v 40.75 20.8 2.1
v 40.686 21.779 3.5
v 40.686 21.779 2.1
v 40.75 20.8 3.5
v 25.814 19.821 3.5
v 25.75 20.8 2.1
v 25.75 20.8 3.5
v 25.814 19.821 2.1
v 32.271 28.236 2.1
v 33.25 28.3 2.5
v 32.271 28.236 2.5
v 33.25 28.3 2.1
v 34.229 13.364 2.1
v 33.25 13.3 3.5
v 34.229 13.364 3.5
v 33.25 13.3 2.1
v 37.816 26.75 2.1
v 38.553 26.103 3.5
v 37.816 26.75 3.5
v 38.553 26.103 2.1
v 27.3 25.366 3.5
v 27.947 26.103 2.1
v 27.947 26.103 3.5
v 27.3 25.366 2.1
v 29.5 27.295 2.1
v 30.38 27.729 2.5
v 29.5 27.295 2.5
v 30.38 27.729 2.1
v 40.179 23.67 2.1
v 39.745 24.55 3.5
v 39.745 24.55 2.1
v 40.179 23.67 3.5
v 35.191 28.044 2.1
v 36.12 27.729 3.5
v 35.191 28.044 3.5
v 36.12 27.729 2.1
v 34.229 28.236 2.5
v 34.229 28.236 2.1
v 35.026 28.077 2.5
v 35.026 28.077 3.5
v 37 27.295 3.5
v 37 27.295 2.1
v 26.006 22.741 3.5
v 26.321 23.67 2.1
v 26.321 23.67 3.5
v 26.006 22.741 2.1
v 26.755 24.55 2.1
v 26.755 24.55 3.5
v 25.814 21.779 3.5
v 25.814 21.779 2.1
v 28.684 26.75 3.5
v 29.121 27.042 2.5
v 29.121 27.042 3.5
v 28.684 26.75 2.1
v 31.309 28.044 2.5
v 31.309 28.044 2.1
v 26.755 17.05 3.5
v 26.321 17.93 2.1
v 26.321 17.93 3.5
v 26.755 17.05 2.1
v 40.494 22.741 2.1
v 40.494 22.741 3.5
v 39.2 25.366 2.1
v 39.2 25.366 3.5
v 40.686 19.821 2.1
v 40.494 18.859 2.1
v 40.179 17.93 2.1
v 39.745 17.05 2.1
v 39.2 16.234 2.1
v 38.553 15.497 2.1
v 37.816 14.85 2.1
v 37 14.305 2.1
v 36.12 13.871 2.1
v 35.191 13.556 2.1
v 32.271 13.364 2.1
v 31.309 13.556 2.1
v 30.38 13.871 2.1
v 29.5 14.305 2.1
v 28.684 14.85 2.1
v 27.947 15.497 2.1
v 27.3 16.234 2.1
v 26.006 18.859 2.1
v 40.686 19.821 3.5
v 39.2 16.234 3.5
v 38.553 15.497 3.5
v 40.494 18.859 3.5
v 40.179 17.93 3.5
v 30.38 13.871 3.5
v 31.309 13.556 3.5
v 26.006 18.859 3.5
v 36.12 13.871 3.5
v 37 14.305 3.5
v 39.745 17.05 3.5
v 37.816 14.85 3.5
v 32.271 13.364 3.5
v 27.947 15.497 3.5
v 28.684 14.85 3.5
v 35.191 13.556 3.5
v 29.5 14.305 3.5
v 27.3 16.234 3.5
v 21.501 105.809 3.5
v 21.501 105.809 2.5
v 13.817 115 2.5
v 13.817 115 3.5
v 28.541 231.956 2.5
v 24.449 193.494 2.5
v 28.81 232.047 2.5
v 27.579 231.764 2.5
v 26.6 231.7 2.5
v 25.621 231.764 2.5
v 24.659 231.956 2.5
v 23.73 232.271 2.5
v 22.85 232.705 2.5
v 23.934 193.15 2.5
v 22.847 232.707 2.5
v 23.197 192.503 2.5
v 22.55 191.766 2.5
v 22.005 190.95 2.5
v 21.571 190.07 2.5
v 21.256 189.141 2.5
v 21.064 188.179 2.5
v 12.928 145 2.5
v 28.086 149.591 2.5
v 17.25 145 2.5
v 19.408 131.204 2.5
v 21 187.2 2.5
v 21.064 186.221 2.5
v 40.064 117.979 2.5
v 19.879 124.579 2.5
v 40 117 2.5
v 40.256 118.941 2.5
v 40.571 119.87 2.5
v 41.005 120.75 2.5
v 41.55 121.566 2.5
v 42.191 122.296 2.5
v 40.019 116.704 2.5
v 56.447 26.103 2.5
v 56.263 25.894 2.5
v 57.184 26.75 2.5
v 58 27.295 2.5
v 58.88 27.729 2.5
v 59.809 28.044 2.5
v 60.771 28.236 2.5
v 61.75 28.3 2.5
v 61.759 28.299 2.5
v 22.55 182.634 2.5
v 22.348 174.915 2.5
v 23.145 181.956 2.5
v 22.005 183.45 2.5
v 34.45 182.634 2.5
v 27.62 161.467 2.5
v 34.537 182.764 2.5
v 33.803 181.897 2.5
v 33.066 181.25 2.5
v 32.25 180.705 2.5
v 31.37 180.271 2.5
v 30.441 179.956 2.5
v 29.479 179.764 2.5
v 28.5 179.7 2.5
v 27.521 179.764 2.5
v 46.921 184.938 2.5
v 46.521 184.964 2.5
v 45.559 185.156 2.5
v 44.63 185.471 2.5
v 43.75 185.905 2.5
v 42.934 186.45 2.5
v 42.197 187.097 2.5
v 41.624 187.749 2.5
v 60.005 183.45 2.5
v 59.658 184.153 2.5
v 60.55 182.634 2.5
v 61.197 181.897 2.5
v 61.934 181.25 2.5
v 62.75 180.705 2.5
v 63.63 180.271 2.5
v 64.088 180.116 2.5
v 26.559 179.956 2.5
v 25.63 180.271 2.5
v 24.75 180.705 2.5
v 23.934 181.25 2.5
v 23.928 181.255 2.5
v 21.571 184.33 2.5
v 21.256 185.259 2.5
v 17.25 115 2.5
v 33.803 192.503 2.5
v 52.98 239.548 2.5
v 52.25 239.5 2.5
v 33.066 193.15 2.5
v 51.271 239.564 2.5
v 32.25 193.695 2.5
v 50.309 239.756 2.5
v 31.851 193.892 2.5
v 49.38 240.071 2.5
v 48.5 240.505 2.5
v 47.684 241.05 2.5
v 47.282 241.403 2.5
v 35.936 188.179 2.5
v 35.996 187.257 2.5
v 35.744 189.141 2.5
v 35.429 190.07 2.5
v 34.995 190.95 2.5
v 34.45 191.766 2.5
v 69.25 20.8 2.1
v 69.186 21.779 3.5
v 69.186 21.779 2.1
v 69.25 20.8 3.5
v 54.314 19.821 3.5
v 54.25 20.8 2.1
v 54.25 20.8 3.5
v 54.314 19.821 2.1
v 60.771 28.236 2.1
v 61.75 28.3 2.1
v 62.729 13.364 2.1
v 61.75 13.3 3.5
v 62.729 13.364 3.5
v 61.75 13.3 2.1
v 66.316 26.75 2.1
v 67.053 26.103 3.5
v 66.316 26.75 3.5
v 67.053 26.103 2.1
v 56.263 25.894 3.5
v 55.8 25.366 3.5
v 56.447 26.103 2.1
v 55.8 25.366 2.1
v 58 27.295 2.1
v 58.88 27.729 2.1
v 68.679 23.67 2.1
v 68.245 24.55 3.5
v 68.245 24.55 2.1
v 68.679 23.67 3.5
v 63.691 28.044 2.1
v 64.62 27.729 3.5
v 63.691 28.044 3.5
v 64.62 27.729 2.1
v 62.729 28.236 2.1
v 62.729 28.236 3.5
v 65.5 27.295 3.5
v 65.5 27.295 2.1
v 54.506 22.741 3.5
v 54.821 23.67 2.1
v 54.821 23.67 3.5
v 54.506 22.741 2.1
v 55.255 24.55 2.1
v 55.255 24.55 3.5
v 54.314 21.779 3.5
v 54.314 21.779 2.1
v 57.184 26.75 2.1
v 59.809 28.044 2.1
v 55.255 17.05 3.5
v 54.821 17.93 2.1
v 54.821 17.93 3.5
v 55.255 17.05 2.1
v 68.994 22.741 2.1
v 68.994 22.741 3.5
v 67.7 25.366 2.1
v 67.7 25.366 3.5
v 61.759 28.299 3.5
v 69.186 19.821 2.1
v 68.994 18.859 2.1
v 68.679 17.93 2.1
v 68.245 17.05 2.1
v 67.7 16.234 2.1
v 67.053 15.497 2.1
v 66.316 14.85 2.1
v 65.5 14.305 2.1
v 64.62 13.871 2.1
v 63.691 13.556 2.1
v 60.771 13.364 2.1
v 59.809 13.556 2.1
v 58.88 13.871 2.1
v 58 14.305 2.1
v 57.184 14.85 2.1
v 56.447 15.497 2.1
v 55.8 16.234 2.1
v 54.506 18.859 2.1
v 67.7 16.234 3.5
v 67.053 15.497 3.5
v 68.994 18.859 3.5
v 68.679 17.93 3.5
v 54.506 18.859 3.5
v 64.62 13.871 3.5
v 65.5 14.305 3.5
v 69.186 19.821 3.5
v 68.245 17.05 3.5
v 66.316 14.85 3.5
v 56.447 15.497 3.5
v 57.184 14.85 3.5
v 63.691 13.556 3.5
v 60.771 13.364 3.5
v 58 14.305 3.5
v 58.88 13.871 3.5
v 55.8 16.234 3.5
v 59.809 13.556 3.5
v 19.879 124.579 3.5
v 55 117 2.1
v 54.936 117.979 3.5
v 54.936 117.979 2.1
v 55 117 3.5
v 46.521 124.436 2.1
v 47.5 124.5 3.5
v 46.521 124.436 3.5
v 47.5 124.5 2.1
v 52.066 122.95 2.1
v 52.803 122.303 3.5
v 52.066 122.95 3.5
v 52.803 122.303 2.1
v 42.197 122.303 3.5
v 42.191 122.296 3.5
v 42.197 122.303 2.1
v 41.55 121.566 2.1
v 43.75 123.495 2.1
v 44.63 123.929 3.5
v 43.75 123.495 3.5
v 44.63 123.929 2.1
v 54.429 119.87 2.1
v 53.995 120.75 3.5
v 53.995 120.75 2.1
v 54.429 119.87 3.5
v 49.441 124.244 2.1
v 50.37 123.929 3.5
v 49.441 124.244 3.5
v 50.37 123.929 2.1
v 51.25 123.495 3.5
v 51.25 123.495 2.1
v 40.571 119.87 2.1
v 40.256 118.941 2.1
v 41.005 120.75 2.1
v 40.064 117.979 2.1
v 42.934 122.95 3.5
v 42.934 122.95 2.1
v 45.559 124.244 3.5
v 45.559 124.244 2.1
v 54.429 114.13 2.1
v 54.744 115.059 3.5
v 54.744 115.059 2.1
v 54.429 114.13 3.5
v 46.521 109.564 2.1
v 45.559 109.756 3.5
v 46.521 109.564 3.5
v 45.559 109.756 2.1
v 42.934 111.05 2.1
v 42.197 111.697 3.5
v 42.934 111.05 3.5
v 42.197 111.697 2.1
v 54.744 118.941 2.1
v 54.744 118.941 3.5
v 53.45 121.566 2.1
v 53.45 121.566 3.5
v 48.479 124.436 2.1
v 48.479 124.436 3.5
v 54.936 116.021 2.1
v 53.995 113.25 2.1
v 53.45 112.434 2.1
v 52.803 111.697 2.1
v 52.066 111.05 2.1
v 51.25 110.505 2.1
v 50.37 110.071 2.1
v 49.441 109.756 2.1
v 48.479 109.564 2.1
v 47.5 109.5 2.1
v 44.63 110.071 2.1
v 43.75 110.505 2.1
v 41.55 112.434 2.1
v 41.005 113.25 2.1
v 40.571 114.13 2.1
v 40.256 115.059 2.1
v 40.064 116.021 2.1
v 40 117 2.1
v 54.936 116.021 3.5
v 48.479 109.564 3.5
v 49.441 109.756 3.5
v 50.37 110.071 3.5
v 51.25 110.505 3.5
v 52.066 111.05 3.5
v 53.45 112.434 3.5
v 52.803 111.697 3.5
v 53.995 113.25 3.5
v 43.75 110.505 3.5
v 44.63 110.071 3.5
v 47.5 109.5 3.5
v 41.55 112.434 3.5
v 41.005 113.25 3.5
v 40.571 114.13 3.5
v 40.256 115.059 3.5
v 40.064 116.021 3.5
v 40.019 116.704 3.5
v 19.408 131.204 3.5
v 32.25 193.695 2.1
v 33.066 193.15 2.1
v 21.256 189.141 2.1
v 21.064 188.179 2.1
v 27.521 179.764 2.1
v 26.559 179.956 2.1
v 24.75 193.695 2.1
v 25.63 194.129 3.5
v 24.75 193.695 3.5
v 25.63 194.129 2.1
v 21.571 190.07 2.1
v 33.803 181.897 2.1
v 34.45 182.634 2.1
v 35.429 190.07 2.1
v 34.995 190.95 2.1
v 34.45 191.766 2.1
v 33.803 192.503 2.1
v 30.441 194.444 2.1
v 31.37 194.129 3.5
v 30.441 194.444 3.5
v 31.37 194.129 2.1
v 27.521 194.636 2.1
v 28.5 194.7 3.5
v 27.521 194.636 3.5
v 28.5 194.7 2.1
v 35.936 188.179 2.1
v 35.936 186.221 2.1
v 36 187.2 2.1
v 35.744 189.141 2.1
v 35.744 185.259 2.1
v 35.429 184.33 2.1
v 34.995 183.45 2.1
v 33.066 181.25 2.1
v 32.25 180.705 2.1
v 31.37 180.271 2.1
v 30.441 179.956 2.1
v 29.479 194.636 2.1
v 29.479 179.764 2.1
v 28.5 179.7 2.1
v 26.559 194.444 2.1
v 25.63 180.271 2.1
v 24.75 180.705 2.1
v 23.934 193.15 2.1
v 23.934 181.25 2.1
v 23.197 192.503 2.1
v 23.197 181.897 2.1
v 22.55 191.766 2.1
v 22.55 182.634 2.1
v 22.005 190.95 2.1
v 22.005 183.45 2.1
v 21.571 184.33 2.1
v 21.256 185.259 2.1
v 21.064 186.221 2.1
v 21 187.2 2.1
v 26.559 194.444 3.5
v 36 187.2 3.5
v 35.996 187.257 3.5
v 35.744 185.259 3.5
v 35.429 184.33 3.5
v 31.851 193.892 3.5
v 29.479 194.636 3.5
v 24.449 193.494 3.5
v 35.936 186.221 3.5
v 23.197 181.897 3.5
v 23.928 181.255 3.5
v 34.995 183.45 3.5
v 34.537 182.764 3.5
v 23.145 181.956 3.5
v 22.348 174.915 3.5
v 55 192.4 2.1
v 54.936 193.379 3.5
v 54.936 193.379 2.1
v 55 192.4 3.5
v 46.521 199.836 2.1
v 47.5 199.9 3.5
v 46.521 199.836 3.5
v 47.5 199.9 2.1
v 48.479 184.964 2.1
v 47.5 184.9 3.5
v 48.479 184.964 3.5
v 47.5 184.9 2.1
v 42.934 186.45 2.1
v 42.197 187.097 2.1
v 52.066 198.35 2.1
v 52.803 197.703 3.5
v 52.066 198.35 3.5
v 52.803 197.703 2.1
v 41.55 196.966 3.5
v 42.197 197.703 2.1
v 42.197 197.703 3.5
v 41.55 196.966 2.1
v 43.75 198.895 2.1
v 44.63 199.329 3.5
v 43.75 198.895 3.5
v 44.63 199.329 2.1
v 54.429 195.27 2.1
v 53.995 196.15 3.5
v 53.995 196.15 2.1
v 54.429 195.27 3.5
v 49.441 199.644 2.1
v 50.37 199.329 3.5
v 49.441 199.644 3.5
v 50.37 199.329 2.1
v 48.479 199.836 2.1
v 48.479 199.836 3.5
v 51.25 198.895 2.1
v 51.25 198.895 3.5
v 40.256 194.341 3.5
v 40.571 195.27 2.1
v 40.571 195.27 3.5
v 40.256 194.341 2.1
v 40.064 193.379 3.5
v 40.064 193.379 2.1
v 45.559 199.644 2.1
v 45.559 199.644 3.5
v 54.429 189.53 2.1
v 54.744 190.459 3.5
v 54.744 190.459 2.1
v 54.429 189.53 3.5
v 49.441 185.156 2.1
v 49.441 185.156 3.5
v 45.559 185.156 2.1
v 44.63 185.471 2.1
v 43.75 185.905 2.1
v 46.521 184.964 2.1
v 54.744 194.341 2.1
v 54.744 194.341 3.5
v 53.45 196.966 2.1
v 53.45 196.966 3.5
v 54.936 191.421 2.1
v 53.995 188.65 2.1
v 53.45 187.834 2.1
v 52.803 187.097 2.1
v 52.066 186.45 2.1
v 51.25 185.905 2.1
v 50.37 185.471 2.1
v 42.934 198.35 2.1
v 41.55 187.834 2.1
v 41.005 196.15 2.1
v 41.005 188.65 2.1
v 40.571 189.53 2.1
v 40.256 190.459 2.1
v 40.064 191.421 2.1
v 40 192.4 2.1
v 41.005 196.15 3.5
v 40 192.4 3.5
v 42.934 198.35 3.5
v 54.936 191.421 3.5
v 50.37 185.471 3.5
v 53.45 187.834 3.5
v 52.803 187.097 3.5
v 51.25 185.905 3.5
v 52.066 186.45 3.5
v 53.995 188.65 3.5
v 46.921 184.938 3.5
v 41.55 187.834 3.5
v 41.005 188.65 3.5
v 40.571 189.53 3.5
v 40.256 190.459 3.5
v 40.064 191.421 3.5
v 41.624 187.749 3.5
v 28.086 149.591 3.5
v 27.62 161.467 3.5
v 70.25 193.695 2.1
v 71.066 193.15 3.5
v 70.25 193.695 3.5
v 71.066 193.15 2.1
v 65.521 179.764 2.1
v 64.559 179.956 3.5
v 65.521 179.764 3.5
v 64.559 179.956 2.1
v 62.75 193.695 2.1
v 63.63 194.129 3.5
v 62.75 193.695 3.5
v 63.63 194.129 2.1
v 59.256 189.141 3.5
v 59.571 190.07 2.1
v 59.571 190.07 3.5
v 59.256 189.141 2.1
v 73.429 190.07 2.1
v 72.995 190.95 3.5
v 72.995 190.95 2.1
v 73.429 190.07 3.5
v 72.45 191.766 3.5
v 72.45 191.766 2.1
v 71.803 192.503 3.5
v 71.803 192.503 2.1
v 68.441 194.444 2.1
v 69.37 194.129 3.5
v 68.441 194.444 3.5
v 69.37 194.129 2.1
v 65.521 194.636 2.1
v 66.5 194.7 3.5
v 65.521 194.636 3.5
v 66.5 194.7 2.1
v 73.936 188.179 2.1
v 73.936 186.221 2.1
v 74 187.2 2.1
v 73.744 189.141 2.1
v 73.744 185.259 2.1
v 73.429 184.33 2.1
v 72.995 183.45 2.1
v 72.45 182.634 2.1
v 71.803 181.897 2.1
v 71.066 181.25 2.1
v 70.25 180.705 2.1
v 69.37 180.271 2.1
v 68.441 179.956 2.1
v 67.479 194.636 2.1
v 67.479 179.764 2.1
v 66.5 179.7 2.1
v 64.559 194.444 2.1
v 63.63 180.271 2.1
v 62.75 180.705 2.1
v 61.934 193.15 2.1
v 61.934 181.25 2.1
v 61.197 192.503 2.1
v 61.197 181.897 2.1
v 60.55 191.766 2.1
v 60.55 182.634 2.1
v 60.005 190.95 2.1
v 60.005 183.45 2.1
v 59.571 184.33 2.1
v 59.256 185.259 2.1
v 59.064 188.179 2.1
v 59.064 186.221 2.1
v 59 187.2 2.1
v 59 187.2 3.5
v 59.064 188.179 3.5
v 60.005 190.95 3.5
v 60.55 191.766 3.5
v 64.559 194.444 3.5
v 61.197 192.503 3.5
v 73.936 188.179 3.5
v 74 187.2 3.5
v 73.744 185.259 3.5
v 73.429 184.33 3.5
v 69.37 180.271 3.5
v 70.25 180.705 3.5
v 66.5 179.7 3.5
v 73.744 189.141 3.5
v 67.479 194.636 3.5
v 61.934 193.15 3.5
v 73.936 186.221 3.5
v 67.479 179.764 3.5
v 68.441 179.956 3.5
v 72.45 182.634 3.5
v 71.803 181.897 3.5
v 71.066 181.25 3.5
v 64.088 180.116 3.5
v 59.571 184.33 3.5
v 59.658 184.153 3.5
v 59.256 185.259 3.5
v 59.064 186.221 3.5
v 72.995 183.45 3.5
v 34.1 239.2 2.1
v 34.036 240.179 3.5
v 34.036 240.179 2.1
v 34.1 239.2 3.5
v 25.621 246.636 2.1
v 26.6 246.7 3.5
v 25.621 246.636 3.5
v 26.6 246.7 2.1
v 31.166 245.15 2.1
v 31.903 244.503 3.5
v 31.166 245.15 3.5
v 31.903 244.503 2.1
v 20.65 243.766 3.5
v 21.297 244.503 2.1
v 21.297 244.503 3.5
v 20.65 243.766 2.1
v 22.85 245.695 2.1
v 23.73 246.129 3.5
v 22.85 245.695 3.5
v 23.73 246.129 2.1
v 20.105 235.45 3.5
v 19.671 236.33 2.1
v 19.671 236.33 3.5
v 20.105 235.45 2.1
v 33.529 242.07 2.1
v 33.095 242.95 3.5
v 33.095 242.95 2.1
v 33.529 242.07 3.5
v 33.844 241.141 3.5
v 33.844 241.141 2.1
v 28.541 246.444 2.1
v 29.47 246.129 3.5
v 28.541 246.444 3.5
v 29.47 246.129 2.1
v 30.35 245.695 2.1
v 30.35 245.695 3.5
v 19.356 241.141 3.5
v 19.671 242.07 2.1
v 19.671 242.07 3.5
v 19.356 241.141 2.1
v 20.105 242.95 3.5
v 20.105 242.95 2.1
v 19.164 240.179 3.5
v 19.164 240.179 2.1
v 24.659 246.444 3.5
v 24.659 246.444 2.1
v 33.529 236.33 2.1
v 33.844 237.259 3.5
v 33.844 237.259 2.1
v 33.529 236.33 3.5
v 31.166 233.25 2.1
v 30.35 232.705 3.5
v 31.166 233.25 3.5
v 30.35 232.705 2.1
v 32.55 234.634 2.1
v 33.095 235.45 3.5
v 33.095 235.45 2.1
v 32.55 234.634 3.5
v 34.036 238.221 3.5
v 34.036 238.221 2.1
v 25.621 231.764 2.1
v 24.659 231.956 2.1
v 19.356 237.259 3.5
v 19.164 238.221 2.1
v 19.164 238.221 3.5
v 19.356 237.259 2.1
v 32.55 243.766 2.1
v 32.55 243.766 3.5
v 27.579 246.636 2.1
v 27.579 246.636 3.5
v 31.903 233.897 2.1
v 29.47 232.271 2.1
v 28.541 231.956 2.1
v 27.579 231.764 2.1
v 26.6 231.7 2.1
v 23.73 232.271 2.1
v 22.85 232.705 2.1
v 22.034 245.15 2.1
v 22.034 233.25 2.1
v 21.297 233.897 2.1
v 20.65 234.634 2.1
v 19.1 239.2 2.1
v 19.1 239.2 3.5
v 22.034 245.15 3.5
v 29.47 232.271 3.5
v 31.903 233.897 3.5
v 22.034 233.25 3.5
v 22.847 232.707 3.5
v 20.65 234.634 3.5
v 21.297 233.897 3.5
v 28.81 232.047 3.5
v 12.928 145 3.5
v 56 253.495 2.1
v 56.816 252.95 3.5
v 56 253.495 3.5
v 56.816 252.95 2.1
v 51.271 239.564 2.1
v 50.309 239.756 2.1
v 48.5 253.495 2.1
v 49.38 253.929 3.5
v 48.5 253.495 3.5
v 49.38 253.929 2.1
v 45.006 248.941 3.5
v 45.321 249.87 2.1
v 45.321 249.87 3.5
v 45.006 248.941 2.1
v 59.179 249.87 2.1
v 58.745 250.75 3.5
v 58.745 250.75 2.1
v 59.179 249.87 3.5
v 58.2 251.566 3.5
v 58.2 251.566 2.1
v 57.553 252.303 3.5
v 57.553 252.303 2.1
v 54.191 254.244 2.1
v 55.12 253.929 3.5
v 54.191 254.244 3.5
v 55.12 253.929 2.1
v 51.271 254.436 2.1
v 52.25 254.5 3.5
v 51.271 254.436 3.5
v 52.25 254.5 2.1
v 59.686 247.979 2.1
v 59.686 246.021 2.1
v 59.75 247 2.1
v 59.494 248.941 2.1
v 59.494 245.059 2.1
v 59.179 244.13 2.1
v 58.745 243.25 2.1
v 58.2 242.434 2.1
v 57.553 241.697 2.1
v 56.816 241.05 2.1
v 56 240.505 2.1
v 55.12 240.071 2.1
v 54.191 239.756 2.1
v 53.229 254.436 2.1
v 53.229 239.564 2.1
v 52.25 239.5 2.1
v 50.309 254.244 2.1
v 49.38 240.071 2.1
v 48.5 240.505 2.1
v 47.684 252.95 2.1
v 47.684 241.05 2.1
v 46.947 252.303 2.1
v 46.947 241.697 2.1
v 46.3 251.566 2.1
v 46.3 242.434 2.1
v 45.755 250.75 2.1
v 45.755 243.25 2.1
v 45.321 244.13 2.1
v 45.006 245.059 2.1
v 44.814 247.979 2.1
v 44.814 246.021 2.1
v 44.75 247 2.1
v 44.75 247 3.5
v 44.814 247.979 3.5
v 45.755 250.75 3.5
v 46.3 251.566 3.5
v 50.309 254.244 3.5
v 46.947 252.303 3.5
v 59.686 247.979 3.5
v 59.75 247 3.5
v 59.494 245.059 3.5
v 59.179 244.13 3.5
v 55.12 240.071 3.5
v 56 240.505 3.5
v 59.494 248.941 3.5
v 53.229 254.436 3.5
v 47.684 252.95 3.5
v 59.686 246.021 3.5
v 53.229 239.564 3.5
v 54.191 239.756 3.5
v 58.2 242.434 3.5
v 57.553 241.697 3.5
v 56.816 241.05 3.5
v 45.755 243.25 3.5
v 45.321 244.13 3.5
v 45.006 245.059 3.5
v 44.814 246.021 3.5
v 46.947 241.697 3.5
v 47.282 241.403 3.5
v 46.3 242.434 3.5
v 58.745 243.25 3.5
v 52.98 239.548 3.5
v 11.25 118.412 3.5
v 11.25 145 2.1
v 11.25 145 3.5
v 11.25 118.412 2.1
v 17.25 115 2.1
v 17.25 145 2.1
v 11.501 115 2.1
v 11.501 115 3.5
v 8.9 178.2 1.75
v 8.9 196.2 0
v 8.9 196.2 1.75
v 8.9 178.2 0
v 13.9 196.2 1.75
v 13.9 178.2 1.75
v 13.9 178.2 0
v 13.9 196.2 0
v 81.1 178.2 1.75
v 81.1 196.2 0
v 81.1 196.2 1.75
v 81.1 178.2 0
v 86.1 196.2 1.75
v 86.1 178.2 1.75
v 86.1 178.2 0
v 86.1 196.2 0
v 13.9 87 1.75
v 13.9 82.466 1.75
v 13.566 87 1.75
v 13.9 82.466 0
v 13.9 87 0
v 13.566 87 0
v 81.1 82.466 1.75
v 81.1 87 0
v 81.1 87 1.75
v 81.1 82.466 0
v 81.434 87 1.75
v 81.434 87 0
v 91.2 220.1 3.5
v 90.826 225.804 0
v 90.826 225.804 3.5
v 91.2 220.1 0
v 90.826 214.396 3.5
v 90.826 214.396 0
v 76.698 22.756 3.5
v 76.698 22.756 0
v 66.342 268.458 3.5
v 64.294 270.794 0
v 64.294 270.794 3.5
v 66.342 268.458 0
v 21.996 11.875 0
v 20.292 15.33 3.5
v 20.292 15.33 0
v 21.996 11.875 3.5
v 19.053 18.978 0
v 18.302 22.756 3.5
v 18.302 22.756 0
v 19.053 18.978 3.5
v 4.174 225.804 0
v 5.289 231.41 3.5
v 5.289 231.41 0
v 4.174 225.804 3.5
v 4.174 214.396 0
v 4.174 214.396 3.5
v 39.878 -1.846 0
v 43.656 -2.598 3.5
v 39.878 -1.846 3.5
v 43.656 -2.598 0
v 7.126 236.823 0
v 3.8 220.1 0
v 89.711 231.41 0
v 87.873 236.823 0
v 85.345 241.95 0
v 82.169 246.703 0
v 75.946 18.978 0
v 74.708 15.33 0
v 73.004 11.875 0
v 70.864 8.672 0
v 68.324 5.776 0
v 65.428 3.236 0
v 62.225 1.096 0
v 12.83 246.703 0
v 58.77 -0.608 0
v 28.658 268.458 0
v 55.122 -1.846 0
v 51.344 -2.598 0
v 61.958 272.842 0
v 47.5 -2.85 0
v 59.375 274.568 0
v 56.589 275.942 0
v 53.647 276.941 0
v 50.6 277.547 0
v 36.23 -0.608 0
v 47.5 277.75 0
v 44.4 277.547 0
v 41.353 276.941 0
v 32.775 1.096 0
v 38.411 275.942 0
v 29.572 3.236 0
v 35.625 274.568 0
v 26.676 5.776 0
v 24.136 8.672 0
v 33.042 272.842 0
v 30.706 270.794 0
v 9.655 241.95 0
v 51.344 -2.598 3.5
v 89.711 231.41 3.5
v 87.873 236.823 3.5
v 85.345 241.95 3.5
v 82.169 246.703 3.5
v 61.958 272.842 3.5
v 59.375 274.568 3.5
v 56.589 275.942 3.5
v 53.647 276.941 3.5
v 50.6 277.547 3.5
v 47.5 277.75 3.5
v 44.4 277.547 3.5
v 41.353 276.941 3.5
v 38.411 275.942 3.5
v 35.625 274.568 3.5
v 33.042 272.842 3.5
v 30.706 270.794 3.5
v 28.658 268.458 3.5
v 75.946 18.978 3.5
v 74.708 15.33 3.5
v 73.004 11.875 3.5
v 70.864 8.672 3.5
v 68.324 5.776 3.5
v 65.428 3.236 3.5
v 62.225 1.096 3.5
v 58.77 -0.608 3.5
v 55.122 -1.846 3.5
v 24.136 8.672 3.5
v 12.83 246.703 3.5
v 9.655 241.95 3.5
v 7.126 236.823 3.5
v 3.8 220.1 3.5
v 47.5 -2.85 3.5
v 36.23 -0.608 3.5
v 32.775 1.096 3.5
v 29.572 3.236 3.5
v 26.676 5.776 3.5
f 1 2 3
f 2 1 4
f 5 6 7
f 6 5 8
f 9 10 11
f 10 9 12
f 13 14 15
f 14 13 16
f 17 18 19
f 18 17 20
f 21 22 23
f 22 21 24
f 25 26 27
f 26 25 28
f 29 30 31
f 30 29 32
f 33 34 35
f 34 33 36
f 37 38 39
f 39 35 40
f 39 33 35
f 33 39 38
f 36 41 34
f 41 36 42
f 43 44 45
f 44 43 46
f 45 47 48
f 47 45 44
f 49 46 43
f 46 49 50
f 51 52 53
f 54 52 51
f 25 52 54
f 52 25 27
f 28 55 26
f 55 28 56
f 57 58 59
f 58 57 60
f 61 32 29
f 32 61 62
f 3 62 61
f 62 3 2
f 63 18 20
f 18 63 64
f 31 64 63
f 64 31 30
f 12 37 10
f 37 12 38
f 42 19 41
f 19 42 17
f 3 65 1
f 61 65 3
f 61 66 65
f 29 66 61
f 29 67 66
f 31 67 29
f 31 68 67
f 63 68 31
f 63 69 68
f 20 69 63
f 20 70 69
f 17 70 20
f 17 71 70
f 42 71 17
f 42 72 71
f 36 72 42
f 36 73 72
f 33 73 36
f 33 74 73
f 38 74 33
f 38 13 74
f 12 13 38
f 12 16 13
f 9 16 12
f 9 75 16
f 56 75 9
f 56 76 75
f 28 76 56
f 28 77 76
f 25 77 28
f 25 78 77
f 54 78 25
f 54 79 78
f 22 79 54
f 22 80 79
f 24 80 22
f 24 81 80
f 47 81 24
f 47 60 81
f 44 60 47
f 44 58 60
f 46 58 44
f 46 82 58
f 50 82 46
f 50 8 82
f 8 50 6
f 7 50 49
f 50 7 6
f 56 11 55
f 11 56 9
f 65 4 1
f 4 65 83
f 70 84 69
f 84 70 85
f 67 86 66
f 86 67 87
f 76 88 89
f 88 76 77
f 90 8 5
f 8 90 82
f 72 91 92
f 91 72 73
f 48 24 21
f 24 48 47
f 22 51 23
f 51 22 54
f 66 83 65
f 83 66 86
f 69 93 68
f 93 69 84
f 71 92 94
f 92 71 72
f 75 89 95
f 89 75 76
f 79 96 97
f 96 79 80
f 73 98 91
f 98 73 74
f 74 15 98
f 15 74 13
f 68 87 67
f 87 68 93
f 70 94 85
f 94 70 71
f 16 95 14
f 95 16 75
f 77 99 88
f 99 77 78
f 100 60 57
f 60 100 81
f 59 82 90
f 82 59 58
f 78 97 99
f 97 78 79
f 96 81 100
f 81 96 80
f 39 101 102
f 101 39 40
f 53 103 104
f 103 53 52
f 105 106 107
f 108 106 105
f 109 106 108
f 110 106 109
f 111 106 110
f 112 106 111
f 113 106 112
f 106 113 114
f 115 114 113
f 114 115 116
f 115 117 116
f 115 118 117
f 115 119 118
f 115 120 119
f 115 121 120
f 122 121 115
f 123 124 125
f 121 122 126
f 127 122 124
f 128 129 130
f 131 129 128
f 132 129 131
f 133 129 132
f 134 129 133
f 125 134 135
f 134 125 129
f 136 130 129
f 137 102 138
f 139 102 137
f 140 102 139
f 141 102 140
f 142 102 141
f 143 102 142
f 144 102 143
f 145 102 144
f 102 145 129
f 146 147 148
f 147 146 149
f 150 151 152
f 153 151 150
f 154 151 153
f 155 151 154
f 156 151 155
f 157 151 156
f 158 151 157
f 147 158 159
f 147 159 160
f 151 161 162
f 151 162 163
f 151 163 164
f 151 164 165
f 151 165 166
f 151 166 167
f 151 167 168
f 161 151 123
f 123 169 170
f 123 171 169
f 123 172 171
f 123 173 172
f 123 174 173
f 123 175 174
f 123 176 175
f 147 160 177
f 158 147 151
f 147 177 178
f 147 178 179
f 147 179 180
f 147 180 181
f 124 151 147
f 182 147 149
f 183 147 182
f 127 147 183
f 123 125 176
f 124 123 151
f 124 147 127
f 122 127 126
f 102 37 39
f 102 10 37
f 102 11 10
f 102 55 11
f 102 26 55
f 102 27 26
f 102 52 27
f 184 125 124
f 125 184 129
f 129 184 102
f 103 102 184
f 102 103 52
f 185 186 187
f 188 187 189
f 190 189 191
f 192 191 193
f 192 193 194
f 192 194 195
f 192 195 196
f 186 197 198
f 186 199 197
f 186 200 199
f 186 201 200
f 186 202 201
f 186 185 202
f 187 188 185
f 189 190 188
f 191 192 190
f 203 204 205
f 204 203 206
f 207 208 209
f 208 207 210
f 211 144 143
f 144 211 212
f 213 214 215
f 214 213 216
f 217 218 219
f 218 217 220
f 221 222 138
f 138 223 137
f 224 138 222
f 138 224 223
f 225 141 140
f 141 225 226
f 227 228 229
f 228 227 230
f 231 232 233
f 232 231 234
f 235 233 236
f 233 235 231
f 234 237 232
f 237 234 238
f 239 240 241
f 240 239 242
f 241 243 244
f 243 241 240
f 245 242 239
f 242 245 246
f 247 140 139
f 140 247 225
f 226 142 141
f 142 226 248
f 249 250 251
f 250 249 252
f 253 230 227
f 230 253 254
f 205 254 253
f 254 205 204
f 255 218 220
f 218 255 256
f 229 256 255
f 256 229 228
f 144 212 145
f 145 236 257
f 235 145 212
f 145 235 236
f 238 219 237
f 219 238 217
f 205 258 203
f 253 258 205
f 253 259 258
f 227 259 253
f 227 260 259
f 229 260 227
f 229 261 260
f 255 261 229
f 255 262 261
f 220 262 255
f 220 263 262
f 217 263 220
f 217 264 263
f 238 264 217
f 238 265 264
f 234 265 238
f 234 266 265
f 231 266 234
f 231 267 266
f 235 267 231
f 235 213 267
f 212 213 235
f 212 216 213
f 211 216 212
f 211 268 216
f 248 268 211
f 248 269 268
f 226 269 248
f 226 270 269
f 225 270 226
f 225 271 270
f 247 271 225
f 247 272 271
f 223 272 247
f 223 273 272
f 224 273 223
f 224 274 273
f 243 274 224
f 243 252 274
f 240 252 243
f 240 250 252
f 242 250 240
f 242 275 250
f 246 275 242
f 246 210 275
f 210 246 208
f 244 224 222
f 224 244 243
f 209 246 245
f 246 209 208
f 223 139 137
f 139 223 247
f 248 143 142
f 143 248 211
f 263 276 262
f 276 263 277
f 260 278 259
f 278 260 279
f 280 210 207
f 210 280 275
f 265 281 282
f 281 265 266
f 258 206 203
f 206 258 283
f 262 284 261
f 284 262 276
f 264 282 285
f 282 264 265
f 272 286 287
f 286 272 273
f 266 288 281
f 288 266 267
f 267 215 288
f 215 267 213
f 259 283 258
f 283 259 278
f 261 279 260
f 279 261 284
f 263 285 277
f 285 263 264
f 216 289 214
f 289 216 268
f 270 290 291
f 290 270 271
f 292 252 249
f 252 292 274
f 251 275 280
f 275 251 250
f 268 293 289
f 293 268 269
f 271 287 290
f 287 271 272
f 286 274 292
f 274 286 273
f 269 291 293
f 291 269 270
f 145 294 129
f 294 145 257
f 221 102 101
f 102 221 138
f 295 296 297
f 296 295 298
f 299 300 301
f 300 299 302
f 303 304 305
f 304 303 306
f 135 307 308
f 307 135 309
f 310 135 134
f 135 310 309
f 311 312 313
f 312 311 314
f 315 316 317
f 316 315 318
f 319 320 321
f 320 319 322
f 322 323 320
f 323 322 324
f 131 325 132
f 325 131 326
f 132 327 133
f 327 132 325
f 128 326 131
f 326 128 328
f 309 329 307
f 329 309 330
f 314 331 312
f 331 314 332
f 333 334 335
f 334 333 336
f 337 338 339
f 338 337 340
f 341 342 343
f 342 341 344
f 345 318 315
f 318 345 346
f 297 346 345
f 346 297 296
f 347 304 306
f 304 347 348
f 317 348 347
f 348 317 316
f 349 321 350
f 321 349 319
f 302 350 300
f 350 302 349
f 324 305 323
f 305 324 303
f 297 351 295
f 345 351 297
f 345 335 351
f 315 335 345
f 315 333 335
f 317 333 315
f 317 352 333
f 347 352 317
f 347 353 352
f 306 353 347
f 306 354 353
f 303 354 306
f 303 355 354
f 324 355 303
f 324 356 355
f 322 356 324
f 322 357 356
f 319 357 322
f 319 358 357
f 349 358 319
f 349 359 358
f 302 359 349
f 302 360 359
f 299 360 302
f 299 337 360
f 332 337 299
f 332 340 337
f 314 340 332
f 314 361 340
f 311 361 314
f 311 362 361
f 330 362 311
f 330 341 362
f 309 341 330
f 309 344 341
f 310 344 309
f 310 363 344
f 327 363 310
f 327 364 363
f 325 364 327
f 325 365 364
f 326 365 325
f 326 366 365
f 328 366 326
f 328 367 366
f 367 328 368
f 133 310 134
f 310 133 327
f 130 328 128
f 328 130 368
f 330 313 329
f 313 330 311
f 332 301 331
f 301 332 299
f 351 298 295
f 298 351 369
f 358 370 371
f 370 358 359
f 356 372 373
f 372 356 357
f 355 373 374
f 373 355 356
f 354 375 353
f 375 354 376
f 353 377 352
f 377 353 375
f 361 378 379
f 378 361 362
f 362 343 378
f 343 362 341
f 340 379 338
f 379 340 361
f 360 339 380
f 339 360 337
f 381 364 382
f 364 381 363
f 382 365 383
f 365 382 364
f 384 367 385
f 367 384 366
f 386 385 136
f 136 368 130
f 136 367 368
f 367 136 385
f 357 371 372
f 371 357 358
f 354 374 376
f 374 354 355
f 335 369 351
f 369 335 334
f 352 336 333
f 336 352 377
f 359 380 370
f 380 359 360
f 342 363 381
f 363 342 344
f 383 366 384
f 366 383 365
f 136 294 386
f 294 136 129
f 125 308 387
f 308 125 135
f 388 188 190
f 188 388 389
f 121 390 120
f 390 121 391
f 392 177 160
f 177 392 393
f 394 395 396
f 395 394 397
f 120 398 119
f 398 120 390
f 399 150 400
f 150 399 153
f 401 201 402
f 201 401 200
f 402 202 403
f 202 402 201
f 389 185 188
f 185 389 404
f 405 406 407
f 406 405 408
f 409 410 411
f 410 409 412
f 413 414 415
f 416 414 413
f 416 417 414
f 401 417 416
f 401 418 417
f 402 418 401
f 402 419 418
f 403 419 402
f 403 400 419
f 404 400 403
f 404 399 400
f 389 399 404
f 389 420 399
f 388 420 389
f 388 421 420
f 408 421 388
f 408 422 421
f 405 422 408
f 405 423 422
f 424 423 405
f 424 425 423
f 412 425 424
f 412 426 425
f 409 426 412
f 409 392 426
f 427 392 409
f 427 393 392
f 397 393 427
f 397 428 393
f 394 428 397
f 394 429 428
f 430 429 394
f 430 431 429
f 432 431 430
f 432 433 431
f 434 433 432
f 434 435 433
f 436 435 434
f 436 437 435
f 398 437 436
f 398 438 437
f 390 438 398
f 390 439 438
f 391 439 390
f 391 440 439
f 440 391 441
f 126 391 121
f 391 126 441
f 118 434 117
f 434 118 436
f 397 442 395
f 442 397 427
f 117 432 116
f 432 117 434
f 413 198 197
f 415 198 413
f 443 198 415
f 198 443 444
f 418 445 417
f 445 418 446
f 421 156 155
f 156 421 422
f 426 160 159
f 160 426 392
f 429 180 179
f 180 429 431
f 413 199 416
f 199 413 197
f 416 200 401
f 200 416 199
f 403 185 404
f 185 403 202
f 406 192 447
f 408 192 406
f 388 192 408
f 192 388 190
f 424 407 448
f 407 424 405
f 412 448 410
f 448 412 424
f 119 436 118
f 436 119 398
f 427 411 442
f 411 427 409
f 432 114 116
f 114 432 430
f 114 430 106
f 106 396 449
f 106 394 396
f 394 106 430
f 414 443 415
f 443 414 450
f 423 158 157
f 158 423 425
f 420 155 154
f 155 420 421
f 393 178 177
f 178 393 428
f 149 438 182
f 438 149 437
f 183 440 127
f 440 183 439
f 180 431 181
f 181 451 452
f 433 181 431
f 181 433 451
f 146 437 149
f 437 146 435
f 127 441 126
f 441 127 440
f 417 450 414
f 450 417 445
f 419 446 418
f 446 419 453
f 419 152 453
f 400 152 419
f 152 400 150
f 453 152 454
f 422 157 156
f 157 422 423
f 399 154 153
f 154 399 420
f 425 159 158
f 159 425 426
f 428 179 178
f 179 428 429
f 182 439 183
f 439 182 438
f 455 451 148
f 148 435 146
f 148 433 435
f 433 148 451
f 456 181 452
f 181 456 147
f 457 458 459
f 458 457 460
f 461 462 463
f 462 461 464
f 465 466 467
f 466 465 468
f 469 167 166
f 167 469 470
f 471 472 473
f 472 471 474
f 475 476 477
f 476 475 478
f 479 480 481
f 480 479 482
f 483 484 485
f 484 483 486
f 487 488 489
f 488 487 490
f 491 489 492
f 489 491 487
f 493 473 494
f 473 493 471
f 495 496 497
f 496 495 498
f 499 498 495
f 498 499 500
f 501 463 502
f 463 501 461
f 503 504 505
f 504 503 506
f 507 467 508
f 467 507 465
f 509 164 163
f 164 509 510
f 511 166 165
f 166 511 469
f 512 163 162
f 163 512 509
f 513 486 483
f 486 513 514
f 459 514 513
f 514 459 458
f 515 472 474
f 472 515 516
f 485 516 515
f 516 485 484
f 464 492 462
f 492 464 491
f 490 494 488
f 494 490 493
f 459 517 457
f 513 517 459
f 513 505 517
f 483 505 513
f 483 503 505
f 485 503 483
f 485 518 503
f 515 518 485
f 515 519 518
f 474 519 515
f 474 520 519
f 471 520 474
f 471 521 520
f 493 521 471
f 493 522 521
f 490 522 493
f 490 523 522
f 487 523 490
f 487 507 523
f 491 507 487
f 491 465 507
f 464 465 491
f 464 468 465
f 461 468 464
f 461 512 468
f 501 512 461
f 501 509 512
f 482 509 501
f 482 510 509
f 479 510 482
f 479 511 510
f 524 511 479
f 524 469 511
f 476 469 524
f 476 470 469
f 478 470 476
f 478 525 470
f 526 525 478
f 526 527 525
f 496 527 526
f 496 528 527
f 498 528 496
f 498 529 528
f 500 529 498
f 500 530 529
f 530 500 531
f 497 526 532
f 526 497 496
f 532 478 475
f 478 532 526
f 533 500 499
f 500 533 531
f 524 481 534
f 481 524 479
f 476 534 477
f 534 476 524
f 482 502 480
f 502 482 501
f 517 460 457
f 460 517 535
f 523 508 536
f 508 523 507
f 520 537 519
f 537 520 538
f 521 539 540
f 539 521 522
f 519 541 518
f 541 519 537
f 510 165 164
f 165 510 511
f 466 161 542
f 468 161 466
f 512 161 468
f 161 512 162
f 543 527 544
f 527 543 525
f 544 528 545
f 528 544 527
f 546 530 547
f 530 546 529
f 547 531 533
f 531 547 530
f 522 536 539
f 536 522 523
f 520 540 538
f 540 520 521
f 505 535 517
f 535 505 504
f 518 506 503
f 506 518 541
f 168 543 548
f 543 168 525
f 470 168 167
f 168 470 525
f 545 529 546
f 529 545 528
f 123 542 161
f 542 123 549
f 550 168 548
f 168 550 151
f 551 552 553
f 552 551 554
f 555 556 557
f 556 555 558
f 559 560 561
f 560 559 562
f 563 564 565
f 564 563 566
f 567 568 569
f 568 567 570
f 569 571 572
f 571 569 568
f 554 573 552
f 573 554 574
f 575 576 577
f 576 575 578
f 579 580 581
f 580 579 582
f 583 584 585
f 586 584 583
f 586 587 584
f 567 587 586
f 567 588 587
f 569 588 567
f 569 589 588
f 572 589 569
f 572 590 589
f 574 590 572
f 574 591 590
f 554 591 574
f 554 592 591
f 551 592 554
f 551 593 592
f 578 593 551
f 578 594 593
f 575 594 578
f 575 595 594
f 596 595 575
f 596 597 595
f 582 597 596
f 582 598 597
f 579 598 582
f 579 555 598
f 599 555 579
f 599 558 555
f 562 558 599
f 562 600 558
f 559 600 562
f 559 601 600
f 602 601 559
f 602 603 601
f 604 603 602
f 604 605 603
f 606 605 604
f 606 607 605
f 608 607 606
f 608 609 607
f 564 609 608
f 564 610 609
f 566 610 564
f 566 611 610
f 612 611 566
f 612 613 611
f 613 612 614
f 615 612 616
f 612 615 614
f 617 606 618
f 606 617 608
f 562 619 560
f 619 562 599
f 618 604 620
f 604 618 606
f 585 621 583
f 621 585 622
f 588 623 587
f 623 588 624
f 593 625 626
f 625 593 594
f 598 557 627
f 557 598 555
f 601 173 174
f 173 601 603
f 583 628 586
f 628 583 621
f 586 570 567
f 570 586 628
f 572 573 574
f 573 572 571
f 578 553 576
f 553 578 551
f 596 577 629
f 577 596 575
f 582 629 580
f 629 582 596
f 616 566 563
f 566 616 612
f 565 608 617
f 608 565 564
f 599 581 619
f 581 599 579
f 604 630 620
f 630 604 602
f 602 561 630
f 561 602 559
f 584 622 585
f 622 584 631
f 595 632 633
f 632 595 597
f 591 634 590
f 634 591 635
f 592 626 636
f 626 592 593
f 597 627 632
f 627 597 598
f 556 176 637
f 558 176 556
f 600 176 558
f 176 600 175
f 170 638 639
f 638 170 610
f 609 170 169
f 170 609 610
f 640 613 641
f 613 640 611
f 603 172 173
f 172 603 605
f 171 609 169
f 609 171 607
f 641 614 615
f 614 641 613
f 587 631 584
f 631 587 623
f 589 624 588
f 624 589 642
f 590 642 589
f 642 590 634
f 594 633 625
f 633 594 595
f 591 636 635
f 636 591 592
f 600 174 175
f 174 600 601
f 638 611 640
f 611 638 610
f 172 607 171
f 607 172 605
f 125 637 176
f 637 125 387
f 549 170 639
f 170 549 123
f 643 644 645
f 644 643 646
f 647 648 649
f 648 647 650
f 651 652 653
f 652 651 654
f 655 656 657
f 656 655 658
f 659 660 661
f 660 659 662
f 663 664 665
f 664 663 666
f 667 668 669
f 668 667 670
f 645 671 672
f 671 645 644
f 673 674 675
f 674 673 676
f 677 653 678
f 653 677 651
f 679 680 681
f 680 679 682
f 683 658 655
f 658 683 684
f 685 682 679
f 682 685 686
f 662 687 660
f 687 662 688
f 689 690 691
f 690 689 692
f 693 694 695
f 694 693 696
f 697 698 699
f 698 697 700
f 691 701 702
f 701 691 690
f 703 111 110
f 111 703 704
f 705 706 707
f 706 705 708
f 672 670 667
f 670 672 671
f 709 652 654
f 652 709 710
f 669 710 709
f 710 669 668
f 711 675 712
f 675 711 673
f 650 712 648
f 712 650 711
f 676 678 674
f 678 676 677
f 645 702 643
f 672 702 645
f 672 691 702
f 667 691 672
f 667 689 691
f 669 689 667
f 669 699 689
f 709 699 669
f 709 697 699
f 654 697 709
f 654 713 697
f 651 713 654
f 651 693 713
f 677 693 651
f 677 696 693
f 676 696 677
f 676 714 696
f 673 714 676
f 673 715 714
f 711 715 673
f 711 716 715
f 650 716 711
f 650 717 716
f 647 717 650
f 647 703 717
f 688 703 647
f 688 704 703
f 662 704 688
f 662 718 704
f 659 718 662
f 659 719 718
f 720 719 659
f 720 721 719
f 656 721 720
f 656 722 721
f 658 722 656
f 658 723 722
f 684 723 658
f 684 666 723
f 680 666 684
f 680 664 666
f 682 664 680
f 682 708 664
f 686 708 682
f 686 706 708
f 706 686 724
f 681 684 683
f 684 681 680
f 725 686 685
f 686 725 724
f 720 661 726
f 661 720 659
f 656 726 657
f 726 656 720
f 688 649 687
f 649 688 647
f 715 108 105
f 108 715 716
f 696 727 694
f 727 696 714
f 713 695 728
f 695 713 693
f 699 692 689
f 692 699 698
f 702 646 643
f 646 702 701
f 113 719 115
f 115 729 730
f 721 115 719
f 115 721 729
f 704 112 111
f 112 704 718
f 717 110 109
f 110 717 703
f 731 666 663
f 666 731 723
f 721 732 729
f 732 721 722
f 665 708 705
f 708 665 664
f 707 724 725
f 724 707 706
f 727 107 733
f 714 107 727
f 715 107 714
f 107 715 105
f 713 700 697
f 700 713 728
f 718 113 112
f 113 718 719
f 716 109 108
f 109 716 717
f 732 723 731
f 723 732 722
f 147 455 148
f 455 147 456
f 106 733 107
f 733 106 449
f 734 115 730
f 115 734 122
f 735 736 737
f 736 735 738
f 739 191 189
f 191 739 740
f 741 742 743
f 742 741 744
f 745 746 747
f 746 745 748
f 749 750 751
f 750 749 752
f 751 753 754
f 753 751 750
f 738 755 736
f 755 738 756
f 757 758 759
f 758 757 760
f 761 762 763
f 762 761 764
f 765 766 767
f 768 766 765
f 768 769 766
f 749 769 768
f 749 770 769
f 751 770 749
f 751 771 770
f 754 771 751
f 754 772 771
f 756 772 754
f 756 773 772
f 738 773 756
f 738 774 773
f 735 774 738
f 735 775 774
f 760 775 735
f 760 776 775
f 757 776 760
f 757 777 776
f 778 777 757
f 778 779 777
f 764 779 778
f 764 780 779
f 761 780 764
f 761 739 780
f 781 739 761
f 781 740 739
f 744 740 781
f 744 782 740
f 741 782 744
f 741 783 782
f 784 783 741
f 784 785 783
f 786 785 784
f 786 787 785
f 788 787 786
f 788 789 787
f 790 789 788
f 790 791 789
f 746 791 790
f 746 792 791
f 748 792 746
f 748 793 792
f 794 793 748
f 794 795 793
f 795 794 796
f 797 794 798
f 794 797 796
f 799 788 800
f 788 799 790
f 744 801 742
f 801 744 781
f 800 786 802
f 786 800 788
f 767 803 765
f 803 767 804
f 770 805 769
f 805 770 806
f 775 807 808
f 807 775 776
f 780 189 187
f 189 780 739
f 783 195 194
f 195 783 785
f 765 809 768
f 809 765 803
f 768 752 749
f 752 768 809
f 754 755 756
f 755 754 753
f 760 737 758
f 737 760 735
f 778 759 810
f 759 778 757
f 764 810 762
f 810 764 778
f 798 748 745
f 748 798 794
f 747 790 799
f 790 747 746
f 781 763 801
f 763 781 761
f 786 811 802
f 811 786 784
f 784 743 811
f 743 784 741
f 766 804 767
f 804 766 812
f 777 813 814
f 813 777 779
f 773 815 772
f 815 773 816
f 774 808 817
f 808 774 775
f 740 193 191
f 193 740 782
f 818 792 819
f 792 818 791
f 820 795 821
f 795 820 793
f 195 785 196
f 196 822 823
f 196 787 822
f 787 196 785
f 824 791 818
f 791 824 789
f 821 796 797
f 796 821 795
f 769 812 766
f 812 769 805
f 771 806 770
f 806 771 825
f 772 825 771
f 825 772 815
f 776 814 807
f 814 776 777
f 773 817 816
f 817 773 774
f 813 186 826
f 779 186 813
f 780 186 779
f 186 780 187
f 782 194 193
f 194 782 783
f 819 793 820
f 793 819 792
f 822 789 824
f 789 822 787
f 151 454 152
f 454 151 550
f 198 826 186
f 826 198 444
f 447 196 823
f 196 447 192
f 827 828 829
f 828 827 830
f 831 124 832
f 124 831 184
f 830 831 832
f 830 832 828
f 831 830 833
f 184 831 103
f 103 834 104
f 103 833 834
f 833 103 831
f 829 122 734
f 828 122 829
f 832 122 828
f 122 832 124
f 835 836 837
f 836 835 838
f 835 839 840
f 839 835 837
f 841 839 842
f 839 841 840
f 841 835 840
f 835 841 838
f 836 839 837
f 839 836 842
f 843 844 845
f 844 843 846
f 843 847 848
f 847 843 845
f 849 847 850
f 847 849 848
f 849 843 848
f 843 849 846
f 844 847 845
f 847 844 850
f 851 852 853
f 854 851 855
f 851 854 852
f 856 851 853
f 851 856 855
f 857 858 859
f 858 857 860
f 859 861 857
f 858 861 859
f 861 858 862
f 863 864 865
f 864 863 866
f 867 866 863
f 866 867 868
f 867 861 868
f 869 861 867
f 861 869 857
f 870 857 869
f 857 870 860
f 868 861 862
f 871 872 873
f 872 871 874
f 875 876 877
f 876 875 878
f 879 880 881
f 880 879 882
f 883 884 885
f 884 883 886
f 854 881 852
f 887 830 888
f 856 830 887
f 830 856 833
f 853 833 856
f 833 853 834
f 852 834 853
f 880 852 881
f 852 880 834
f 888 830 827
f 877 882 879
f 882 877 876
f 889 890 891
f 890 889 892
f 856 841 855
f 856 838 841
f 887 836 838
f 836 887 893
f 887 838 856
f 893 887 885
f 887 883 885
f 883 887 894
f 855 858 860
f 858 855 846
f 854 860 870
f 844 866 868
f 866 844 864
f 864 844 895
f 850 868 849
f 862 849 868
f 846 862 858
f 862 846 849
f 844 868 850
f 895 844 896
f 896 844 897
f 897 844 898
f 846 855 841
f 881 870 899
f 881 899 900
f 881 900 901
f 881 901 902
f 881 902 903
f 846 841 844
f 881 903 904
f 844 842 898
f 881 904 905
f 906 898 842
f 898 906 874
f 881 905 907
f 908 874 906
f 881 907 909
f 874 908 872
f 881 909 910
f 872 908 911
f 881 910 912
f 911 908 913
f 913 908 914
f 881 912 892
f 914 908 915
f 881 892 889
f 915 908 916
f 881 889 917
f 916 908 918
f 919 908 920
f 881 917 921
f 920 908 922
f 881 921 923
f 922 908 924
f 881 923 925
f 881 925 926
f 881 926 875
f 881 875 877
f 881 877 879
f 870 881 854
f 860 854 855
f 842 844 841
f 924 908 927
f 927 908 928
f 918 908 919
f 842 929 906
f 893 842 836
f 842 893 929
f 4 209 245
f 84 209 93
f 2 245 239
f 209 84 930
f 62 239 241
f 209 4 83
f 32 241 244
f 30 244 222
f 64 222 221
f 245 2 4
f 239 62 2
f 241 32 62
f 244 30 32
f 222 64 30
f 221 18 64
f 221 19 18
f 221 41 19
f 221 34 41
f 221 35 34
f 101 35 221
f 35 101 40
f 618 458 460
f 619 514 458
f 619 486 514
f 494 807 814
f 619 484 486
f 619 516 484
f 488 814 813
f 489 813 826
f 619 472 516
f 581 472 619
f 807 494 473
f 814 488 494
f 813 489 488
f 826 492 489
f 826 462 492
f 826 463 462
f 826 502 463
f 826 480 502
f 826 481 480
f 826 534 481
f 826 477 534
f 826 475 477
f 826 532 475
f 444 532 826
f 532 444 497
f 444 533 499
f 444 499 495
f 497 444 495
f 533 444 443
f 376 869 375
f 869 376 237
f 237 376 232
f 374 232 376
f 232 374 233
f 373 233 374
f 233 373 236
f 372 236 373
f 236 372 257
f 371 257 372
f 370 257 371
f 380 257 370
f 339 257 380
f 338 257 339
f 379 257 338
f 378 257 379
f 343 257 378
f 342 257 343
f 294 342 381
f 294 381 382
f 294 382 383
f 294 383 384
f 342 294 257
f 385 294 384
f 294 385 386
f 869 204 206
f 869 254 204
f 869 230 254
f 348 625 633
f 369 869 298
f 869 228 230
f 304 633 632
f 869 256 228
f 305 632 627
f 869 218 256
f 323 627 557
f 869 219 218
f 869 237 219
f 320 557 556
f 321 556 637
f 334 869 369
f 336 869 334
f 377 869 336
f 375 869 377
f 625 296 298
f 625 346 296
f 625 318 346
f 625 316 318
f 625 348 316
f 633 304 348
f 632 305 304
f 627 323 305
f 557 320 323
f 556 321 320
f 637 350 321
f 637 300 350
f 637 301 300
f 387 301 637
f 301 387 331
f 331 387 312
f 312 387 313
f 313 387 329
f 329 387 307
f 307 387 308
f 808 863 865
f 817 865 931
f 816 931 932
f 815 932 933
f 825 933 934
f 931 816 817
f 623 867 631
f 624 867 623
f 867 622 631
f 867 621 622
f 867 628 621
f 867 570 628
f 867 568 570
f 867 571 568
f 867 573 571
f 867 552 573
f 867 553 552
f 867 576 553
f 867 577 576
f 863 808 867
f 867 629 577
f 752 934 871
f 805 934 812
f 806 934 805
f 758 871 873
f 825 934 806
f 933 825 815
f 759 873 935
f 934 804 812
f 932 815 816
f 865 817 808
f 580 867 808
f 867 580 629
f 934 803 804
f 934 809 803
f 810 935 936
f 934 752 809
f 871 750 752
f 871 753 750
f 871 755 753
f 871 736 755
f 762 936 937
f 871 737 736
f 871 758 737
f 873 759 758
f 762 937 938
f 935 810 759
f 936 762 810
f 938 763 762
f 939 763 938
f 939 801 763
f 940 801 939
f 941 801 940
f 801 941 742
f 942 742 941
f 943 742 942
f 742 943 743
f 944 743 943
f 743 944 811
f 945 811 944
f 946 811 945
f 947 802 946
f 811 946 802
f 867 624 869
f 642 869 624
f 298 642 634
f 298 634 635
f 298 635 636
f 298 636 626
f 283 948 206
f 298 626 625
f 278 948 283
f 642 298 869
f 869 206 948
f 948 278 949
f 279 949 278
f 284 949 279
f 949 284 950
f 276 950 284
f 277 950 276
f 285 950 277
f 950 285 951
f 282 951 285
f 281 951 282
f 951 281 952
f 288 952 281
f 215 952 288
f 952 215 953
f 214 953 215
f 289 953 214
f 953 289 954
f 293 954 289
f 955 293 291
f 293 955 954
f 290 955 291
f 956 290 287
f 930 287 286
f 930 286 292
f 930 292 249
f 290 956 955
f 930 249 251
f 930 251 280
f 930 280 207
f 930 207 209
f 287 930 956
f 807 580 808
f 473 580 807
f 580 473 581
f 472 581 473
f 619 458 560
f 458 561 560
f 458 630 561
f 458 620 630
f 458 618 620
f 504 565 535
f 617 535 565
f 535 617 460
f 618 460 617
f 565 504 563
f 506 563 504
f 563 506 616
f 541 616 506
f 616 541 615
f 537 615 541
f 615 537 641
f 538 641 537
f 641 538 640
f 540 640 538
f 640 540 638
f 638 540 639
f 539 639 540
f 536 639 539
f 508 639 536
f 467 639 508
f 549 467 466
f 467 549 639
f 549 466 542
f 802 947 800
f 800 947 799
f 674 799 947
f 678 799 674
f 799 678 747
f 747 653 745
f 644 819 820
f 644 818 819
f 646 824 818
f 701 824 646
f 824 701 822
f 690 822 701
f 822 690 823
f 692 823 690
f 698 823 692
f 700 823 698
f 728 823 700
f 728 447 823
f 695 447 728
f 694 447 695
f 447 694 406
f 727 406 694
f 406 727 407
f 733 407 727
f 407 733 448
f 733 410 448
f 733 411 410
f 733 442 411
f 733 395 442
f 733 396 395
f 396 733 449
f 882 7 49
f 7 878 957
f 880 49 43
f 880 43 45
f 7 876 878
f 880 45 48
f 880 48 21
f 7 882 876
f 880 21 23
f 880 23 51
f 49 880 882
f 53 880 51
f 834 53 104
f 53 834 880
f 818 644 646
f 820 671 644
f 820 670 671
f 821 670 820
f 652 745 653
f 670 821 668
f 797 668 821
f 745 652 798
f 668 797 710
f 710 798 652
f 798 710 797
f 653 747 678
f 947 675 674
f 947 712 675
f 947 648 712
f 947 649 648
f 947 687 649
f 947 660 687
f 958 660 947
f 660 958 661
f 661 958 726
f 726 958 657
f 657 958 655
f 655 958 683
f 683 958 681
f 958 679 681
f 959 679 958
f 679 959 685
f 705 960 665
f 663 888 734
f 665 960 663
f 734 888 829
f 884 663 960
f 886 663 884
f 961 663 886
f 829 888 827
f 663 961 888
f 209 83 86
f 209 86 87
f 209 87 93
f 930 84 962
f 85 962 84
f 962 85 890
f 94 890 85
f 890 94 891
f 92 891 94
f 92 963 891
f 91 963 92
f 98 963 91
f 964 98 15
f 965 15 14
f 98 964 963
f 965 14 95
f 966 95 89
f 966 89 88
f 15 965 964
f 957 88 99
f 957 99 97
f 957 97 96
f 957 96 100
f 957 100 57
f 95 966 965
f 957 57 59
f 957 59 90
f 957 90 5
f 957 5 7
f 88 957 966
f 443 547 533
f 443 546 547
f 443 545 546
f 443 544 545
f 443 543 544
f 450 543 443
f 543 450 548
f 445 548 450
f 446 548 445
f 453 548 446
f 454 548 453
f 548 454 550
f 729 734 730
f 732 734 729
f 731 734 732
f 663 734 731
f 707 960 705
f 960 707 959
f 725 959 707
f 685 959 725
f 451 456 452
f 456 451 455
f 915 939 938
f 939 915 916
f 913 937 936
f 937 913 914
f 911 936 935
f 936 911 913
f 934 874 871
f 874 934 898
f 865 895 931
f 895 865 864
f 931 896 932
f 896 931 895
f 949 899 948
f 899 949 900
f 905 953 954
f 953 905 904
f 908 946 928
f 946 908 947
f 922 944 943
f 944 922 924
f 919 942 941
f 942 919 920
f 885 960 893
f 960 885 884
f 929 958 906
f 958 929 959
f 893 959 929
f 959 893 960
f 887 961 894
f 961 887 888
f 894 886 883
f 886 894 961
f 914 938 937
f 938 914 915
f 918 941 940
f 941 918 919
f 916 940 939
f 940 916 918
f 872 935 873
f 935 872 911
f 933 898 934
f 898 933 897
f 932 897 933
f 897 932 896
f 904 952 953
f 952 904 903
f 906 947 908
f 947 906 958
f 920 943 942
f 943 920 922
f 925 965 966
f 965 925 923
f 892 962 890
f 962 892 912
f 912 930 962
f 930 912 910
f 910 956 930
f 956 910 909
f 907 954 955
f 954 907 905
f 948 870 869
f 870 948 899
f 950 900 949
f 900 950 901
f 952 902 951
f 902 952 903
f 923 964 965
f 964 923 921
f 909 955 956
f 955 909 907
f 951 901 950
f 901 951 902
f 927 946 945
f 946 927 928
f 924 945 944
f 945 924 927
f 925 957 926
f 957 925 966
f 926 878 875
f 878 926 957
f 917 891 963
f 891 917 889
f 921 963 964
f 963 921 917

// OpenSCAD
// barefoot_sole.scad — thin TPU footbed carrying the 8 FSRs (barefoot rig)
// Wear it strapped to a bare foot to log barefoot pressure, then compare vs
// the shoe insole. Also works as a plain shoe insole-carrier.
// Usage: open in OpenSCAD -> F6 -> Export STL. PRINT IN SOFT TPU (85A).
// For a TRUE-FIT version, boolean these pockets/channels into your SCANNED
// footbed instead of this generic outline — see docs/path2_tracking_build.md.
// All units mm.

/* ---------- parameters ---------- */
foot_len = 260;   // heel->toe footbed length (US M11 footbed ≈ 255-265)
foot_w   = 95;    // ball width
thick    = 3.5;   // footbed thickness
pocket_d = 15;    // FSR pocket diameter (pad ≈ 12.5 + slack)
pocket_h = 1.4;   // recess depth (leaves a thin membrane above the sensor)
chan_w   = 6;     // wire-channel width
$fn      = 48;

// FSR zone positions — normalized [x medial->lateral 0..1 , y heel->toe 0..1]
// (matches ZONES / SENSOR_XY in analysis/analyze_pressure.py)
zones = [ [0.35,0.08], [0.65,0.08], [0.50,0.45], [0.30,0.72],
          [0.50,0.74], [0.70,0.72], [0.28,0.92], [0.55,0.95] ];

module footbed(){
  hull(){
    translate([foot_w/2, foot_w*0.28,        0]) cylinder(d = foot_w*0.62, h = thick); // heel
    translate([foot_w/2, foot_len-foot_w*0.42,0]) cylinder(d = foot_w*0.92, h = thick); // ball
    translate([foot_w/2, foot_len-6,         0]) cylinder(d = foot_w*0.50, h = thick); // toe
  }
}

module pockets_and_channels(){
  for (z = zones){
    px = z[0]*foot_w; py = z[1]*foot_len;
    // FSR pocket (recessed from the top face)
    translate([px, py, thick - pocket_h]) cylinder(d = pocket_d, h = pocket_h + 1);
    // wire channel from each pocket toward the medial instep (x≈0.15, y≈0.5)
    hull(){
      translate([px, py, thick - 1.0]) cylinder(d = chan_w, h = 1.2);
      translate([foot_w*0.15, foot_len*0.5, thick - 1.0]) cylinder(d = chan_w, h = 1.2);
    }
  }
  // ribbon exit channel out the medial edge
  translate([foot_w*0.15 - chan_w/2, foot_len*0.5 - 15, thick - 1.4]) cube([chan_w, 30, 1.5]);
}

module strap_slots(){          // toe + ankle transverse straps
  for (y = [foot_len*0.72, foot_len*0.30])
    for (sx = [0.12, 0.88])
      translate([foot_w*sx, y, -0.5]) cube([5, 18, thick + 1], center = true);
}

difference(){
  footbed();
  pockets_and_channels();
  strap_slots();
}
